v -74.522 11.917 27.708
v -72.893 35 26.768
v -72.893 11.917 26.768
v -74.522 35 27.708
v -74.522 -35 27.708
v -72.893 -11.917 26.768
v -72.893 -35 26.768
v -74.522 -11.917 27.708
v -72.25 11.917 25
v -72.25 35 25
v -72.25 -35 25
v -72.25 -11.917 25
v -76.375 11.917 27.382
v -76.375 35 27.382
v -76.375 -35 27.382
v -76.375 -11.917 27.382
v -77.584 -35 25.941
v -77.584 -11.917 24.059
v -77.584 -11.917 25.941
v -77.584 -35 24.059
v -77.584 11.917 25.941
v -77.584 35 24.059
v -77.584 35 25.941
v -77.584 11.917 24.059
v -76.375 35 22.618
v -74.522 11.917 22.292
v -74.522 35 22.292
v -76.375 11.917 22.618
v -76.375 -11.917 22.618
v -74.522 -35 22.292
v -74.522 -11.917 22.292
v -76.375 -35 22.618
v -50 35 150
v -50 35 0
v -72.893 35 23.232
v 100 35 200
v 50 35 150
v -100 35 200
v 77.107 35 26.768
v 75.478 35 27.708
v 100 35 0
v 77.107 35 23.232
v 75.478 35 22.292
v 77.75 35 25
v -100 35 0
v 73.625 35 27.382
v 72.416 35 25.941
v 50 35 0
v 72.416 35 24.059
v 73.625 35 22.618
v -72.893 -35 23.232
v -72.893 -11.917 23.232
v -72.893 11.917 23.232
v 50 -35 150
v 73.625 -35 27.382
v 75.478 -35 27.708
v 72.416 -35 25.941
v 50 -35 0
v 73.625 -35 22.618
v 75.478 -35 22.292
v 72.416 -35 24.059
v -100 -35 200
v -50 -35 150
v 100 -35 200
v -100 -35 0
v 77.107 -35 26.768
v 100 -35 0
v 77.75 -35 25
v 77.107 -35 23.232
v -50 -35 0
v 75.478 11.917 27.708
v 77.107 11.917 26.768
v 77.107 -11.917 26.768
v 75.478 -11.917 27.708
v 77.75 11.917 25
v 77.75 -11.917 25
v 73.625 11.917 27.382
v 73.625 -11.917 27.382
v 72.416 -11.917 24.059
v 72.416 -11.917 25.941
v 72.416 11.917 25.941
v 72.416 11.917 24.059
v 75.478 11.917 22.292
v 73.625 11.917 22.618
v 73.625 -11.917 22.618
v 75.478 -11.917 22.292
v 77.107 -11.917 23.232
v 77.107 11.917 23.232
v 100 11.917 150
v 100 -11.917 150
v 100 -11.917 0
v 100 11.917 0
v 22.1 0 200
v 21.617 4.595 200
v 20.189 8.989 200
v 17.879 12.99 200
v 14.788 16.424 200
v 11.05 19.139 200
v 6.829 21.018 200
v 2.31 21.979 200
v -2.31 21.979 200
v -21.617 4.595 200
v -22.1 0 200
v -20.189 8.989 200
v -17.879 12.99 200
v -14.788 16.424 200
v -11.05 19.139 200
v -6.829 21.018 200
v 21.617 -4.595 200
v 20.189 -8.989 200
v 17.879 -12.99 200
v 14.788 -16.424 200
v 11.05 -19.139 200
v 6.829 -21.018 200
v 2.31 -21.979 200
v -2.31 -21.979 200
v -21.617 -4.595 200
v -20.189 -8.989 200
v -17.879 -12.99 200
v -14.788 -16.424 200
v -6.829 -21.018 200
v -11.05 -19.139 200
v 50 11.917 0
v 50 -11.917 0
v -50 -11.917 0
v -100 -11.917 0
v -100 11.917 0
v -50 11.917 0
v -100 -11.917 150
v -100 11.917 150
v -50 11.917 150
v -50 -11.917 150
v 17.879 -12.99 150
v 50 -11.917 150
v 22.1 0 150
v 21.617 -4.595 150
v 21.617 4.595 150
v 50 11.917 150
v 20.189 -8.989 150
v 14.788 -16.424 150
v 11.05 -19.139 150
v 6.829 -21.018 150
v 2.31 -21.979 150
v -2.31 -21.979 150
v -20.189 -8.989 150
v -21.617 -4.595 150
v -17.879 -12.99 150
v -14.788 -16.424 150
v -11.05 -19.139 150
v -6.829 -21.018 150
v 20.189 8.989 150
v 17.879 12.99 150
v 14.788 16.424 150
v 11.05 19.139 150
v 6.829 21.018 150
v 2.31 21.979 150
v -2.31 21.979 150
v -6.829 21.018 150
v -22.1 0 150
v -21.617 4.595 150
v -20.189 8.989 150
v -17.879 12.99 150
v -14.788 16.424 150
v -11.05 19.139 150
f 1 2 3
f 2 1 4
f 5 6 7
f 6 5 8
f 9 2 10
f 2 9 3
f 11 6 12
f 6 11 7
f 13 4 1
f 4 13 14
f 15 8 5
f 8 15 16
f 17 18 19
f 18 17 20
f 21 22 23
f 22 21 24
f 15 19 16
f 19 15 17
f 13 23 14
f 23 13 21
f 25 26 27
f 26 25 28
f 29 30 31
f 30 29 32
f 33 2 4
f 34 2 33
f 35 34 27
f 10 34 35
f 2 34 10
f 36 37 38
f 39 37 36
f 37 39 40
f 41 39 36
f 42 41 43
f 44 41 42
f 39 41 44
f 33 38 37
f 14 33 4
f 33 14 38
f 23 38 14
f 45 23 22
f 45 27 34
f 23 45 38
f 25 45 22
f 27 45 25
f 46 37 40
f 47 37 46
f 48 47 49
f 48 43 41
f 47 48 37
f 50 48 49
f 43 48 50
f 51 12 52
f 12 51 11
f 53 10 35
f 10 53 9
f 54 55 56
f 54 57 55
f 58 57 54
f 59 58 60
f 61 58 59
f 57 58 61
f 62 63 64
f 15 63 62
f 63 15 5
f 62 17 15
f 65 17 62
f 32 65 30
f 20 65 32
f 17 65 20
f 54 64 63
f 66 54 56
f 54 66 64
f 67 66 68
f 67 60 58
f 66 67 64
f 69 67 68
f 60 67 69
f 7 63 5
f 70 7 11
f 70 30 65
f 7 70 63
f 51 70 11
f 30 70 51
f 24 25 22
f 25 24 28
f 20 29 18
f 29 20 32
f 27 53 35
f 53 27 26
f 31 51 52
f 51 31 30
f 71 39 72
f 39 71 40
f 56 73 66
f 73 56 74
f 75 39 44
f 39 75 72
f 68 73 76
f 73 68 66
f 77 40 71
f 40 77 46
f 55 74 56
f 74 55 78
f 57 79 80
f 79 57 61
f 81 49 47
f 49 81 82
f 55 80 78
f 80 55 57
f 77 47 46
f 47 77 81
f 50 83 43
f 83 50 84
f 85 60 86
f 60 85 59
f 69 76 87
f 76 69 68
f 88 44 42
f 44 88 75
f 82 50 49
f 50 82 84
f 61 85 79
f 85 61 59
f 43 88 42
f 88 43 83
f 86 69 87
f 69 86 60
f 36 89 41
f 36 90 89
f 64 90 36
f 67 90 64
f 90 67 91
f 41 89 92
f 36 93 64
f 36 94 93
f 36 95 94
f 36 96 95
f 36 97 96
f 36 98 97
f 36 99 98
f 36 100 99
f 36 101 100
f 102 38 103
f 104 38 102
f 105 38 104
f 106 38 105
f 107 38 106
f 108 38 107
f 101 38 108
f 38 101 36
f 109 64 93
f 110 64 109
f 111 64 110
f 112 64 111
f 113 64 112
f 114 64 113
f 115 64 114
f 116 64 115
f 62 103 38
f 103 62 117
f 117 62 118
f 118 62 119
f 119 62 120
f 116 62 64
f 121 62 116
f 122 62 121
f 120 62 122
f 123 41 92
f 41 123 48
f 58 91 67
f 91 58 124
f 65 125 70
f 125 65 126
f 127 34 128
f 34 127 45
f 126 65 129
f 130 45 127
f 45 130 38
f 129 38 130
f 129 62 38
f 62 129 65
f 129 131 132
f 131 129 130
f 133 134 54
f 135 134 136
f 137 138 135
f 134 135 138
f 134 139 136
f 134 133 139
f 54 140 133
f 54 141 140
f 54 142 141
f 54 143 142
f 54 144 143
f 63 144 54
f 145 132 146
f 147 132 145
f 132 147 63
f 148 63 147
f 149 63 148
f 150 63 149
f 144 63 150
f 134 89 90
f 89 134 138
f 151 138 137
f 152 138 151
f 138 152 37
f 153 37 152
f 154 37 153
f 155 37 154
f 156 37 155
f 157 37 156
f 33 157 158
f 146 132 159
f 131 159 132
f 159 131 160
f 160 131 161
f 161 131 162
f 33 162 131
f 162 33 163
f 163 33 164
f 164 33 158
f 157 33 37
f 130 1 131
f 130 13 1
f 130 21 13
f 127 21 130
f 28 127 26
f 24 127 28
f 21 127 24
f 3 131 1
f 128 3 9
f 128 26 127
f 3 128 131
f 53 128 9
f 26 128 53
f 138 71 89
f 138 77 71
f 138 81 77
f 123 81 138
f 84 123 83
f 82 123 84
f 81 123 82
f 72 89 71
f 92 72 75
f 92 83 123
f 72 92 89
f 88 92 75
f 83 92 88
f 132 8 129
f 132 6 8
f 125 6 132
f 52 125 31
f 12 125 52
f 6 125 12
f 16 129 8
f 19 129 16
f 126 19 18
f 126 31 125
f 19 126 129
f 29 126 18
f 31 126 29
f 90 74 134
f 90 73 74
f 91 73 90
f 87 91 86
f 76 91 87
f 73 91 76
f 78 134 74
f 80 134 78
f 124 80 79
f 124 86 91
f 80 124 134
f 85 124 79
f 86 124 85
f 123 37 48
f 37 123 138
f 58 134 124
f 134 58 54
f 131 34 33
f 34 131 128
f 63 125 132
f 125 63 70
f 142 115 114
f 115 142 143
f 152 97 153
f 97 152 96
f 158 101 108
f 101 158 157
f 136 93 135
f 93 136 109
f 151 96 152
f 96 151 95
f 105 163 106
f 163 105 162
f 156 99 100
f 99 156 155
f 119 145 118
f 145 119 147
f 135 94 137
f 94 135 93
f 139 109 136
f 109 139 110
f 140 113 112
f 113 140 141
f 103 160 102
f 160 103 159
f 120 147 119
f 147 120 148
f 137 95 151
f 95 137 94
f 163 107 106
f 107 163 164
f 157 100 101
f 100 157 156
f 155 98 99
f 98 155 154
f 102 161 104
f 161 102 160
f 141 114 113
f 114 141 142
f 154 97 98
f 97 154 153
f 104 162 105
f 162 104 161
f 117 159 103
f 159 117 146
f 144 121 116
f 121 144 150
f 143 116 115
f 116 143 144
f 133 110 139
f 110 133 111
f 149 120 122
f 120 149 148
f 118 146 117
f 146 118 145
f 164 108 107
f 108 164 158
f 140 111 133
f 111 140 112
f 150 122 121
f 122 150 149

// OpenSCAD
// file: Parameters.scad
// Planetary gear bearing (customizable)

// outer diameter of ring
D=80;

// thickness
T=20;

//Ball Bearing
bbT=7;      // thickness
bbED=22;    // external diameter
bbID=8;     // internal diameter
bbIR=12;    // internal ring
bbIDWH=1; // internal disk washer high

//Thrust Ball Bearing
tbbT=7;      // thickness
tbbED=16;    // external diameter
tbbID=8;     // internal diameter

SlowPartHigh=38;
slowPartSmallDiameter=30;
lhhW=17; // large hexagonal hole Width
lhhH=10; // large hexagonal hole High

//Drill Support
dsHighTop=200;
dsWidth=200;
dsTickness=50;
dsDepth= 70;
dsHole=43;

dsHighBottom=50;
HoleDiameterForThreadedRod=14;
HoleDiameterForBearingBallPlate=34;
BearingBallPlateHight=5;
FixingHolesDiameter=5.5;

// clearance
tol=0.15;

number_of_planets=4;
number_of_teeth_on_planets=15;
approximate_number_of_teeth_on_sun=10;

// pressure angle
P=45;//[30:60]

// number of teeth to twist across
nTwist=1;

// width of little hexagonal hole
w=6.7;

DR=0.5*1;// maximum depth ratio of teeth

m=round(number_of_planets);
np=round(number_of_teeth_on_planets);
ns1=approximate_number_of_teeth_on_sun;
k1=round(2/m*(ns1+np));
k= k1*m%2!=0 ? k1+1 : k1;
ns=k*m/2-np;
nr=ns+2*np;
pitchD=0.9*D/(1+min(PI/(2*nr*tan(P)),PI*DR/nr));
pitch=pitchD*PI/nr;
helix_angle=atan(2*nTwist*pitch/T);
phi=$t*360/m;

echo("ns=",ns);
echo("pitch =",pitch);
echo("helix_angle=",helix_angle);


module FixingDrillSupportParts(location)
{
    rotate([90,0,0]) 
        translate([0, location,  0]) 
    {
        translate([-((dsWidth - 2*dsTickness)+((dsWidth - 2*dsTickness)/2))/2,-dsTickness,0]) 
            cylinder(r=FixingHolesDiameter/2, h=dsDepth, center=true);
        translate([+((dsWidth - 2*dsTickness)+((dsWidth - 2*dsTickness)/2))/2,-dsTickness,0]) 
            cylinder(r=FixingHolesDiameter/2, h=dsDepth, center=true);
    }
}
// main file
include <./Parameters.scad>;


translate([0,0,dsHighTop/2])    DrillSupportTop();

module DrillSupportTop()
difference()
{
    cube([dsWidth,dsDepth,dsHighTop],center=true);
    translate([0,0,-dsTickness/2]) cube([dsWidth, dsDepth/3 + 0.5,        dsHighTop-dsTickness],center=true);
    translate([0,0,-dsTickness/2]) cube([dsWidth - 2*dsTickness, dsDepth, dsHighTop-dsTickness],center=true);
    cylinder(r=dsHole/2 + tol*4, h=dsHighTop, center=true);
    FixingDrillSupportParts(-dsTickness/2);
}
